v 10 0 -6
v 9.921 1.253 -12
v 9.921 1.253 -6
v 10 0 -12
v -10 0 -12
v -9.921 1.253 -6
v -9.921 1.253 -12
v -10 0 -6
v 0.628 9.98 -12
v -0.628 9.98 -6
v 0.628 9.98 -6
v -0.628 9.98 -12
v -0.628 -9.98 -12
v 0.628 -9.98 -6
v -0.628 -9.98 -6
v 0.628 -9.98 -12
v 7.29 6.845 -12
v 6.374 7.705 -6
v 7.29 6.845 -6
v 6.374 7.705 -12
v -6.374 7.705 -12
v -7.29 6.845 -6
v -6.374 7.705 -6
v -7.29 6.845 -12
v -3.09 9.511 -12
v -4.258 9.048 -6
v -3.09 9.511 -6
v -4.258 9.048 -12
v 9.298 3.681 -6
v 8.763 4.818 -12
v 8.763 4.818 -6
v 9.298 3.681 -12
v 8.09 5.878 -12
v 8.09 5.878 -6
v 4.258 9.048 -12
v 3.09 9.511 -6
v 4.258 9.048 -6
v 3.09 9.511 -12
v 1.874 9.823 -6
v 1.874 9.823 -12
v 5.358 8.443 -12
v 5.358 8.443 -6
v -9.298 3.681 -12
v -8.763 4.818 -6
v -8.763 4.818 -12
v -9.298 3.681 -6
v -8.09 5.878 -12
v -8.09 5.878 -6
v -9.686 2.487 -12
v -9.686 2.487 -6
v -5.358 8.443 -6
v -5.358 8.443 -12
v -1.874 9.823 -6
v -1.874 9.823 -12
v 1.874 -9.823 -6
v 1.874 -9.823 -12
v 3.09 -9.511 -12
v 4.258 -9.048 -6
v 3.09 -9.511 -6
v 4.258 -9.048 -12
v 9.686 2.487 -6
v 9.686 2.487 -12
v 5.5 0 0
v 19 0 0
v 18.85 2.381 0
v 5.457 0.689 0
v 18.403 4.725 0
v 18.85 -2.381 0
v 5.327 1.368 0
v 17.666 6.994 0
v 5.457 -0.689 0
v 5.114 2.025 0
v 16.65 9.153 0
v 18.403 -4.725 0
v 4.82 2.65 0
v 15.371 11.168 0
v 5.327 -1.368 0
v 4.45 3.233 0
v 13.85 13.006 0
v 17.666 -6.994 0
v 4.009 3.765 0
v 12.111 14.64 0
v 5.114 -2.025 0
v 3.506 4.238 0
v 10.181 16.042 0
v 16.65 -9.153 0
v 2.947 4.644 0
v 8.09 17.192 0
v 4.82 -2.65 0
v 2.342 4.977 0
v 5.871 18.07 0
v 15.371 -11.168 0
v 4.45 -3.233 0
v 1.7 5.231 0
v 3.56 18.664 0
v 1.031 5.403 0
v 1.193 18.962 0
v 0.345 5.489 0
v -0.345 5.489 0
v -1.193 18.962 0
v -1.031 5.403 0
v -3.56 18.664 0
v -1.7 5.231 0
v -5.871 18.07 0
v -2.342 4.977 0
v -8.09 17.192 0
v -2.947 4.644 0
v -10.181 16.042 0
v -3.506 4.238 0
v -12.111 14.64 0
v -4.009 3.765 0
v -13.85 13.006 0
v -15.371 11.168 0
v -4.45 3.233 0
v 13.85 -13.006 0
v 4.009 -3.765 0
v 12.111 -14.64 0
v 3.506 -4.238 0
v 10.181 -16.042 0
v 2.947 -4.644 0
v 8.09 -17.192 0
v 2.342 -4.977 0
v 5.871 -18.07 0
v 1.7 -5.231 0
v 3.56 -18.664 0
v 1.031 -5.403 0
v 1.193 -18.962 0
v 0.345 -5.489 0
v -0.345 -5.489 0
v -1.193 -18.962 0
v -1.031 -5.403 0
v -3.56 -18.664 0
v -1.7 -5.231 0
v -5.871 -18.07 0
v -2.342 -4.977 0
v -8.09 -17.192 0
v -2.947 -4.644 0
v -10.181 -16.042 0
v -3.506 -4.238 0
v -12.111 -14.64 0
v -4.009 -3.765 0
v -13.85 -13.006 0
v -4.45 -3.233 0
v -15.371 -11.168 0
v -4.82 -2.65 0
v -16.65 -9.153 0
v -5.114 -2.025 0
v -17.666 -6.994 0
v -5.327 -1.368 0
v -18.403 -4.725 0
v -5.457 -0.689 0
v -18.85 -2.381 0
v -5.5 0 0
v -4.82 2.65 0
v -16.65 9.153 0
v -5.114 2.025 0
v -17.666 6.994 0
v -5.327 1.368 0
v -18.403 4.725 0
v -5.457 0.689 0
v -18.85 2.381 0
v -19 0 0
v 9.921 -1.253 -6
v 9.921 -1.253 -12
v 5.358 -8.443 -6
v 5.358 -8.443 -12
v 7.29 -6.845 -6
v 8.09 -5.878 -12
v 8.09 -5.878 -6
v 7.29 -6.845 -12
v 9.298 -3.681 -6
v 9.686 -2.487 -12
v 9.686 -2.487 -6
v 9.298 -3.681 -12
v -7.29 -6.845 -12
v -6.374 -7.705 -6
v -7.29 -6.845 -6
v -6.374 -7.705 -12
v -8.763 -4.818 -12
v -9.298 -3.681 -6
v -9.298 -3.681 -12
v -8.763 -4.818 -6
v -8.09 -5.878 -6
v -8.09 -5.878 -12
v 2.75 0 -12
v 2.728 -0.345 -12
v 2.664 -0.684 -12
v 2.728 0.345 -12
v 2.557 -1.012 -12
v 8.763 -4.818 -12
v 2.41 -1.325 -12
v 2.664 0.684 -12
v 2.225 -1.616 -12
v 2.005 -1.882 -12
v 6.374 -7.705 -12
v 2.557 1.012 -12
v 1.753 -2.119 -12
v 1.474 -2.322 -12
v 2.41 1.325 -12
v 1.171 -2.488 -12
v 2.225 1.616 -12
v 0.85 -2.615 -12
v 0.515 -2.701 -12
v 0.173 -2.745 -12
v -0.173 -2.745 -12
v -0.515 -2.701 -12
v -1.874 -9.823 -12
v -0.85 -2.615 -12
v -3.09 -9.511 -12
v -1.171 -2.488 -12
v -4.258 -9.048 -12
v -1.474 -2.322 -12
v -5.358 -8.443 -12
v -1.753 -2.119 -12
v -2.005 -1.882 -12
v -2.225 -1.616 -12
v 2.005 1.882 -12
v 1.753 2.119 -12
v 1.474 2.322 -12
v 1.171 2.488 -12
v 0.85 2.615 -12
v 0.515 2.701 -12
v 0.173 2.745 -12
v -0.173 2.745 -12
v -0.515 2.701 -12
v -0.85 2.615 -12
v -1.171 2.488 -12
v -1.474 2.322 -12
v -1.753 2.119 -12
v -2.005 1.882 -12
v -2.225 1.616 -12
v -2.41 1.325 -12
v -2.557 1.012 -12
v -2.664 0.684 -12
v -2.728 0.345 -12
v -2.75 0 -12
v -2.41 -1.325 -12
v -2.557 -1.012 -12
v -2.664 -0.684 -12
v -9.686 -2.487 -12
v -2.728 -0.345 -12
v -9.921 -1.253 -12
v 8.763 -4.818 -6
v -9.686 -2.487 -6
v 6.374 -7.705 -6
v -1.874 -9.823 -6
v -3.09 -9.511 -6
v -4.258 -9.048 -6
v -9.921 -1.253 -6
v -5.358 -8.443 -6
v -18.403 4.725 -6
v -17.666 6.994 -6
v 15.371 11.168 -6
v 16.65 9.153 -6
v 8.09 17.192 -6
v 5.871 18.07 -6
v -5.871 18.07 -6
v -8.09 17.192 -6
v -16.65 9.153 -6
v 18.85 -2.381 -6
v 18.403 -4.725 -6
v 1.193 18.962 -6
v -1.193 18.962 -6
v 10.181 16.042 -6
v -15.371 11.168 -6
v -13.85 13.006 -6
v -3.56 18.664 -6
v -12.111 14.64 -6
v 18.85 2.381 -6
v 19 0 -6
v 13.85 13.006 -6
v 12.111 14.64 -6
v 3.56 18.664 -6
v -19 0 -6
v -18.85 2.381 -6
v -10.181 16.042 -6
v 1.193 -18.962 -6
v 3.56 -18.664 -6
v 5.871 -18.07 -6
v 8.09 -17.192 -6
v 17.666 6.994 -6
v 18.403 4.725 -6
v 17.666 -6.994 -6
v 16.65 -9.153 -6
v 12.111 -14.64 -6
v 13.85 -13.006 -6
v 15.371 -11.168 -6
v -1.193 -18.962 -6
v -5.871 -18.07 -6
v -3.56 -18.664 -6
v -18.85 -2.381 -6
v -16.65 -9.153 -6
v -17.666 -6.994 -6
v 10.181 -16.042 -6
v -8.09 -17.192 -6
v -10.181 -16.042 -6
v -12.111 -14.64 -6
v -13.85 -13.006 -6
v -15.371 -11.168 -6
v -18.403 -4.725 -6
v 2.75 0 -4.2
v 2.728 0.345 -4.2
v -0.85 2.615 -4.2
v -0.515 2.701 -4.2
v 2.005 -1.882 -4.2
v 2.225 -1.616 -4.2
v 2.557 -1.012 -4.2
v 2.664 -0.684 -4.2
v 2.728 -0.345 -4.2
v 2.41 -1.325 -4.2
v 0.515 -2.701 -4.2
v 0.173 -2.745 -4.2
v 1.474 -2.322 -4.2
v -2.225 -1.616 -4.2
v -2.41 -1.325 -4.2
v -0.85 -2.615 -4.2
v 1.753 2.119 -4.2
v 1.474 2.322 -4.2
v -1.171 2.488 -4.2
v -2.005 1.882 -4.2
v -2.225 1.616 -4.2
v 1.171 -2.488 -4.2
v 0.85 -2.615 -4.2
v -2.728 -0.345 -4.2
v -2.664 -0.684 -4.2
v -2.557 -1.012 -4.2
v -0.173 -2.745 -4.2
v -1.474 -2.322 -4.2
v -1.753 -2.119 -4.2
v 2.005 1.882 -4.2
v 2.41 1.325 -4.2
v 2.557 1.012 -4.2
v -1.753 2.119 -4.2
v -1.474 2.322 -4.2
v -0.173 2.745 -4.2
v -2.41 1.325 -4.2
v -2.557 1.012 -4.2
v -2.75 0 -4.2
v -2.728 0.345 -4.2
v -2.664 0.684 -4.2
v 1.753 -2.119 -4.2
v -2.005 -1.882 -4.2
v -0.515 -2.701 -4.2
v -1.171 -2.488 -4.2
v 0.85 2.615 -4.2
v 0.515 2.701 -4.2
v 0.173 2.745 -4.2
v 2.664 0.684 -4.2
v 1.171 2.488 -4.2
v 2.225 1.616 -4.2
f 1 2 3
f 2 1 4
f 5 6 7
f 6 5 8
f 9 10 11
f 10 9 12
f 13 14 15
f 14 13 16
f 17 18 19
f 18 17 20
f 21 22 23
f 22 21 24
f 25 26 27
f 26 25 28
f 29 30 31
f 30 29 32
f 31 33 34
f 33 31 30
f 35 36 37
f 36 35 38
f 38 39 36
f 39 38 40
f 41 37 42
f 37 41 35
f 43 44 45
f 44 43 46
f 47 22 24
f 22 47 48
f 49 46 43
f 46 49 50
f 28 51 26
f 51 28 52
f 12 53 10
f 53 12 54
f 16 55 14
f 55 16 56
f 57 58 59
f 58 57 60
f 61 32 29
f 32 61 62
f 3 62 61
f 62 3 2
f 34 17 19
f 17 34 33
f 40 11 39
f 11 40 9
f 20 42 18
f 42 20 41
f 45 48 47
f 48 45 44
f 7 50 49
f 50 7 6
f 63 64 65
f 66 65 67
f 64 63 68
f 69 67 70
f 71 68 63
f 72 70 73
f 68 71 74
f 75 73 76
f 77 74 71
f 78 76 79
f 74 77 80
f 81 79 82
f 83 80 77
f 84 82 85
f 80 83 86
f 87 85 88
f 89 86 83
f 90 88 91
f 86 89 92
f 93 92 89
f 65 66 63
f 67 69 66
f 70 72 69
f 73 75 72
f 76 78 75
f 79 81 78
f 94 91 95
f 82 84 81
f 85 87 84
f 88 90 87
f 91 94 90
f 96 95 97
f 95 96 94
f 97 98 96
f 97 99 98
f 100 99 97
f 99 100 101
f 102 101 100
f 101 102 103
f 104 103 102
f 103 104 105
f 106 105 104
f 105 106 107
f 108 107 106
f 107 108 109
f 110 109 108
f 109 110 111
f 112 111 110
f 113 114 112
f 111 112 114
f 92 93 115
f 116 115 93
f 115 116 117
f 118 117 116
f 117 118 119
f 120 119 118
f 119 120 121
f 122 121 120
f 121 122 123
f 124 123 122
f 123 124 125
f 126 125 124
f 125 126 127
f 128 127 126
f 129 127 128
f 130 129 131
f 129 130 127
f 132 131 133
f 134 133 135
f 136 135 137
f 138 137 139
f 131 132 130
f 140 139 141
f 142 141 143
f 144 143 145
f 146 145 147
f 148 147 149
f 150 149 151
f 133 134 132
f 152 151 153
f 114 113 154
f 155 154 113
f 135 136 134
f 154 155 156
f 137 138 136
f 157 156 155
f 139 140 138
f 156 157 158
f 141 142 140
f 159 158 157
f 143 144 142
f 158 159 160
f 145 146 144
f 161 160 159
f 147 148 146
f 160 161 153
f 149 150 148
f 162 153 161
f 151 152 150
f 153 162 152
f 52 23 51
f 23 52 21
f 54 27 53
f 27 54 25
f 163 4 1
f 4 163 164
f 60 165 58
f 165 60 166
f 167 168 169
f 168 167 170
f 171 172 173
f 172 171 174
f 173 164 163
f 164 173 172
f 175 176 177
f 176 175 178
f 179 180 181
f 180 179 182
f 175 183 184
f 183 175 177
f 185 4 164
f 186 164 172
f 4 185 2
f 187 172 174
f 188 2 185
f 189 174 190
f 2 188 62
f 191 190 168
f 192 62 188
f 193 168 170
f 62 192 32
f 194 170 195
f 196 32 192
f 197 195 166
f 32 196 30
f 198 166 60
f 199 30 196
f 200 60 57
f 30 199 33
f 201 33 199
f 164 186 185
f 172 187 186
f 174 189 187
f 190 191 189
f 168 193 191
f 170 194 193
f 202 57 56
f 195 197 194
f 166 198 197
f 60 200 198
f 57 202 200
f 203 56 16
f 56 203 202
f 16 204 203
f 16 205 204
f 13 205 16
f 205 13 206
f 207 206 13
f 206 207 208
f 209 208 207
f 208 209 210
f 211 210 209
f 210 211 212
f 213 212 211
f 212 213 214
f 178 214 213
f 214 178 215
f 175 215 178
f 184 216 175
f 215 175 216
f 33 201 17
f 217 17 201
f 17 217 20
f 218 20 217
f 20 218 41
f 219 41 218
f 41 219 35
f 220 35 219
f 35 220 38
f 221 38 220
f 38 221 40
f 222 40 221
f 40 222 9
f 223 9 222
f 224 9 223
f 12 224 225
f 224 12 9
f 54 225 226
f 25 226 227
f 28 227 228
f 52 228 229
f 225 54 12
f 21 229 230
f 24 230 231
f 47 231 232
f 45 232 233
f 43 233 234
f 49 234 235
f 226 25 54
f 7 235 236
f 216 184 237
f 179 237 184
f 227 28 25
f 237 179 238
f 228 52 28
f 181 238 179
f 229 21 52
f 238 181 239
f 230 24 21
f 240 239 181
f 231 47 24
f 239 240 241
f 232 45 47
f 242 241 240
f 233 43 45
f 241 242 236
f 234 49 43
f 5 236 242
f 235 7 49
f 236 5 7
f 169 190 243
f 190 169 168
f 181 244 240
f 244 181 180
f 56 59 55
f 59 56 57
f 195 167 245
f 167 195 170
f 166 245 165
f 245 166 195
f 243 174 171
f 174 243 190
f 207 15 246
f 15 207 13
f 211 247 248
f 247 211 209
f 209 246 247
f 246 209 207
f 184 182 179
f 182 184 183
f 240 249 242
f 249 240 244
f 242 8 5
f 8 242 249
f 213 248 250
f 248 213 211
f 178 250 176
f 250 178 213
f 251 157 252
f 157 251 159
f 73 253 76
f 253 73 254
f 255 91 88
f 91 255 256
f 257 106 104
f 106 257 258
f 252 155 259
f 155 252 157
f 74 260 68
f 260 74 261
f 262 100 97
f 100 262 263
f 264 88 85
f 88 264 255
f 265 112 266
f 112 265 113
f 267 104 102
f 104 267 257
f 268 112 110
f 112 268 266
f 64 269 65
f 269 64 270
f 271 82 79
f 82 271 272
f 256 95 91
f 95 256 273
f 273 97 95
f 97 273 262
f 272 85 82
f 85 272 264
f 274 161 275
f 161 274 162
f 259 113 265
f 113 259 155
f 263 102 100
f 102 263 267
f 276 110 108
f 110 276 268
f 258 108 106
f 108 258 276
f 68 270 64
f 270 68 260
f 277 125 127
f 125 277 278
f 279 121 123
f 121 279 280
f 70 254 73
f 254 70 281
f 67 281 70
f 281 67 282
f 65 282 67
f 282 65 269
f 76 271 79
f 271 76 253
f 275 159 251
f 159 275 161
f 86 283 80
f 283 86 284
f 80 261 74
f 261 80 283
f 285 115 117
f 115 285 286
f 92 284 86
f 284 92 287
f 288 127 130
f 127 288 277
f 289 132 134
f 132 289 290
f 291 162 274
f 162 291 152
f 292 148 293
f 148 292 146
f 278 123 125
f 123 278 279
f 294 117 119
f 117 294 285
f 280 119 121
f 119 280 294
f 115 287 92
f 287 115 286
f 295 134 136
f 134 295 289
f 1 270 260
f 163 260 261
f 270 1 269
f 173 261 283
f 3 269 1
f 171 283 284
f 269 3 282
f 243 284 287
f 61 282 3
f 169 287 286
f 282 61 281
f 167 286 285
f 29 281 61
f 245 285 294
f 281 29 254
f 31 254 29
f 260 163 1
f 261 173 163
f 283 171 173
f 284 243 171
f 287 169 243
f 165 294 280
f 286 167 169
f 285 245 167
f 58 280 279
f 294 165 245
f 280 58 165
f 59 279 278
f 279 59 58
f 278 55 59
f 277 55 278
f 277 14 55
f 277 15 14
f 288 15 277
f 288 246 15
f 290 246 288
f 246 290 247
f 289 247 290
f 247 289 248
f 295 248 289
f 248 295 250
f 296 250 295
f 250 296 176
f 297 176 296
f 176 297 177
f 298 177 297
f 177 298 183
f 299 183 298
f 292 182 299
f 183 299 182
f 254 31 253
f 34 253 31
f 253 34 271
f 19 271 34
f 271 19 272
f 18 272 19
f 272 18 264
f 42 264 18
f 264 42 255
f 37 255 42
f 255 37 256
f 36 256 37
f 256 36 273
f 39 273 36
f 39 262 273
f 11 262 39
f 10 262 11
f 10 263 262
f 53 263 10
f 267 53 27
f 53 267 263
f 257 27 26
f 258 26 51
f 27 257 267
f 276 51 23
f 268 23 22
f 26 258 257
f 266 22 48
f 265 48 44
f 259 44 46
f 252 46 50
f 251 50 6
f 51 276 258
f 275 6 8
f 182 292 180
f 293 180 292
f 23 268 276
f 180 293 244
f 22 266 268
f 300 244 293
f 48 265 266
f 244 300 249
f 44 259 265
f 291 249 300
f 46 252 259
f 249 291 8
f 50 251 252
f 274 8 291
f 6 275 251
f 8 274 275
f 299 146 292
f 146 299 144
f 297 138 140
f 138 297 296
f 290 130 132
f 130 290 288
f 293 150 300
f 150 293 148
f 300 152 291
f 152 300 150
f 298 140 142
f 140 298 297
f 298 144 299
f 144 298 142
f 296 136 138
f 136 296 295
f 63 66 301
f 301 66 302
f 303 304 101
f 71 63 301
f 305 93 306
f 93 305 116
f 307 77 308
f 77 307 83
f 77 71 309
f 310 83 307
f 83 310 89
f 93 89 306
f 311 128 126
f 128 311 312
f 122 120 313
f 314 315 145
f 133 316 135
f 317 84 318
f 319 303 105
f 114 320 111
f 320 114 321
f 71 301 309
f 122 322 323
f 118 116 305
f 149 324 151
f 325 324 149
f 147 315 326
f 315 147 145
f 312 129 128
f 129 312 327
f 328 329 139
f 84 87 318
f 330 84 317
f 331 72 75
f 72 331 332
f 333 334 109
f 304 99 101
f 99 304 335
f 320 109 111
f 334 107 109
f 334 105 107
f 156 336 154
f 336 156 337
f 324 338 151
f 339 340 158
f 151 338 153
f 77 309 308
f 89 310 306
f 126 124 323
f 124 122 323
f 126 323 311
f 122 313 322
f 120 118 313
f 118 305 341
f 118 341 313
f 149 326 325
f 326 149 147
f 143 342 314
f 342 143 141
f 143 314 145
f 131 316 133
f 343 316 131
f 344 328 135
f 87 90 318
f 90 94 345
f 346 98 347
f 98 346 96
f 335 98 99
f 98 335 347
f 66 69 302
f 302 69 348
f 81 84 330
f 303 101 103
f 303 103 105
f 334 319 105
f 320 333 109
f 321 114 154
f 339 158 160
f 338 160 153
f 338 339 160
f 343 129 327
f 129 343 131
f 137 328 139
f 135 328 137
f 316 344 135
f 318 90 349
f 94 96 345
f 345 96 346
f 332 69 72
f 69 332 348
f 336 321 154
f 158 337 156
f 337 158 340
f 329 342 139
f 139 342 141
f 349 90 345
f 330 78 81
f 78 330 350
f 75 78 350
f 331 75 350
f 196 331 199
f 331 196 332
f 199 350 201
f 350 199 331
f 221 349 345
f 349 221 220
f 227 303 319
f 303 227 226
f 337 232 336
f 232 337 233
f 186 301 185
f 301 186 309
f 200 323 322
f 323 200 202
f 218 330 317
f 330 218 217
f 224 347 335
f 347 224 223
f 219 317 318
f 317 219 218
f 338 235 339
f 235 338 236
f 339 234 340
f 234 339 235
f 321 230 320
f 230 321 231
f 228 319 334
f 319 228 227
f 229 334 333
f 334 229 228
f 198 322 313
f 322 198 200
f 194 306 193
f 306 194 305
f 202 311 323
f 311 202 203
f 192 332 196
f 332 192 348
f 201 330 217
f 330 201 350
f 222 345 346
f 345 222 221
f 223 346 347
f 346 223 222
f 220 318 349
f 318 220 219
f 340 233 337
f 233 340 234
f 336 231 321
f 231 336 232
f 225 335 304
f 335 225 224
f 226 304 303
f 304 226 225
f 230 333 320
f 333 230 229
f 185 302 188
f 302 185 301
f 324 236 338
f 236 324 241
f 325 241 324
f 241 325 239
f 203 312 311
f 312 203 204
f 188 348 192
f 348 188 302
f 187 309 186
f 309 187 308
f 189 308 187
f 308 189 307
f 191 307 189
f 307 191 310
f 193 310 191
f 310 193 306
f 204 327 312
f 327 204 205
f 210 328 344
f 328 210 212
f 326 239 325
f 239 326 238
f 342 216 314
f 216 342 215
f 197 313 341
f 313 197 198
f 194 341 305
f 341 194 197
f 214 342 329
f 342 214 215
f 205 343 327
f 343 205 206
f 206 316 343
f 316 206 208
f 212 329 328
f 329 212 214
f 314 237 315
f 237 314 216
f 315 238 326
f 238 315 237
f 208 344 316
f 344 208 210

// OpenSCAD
$fn = 50;


difference() {
	union() {
		translate(v = [0, 0, -12.0000000000]) {
			cylinder(h = 12, r = 10.0000000000);
		}
		translate(v = [0, 0, -6.0000000000]) {
			cylinder(h = 6, r = 19.0000000000);
		}
	}
	union() {
		translate(v = [0, 0, 0]) {
			rotate(a = [0, 0, 0]) {
				difference() {
					union() {
						#translate(v = [0, 0, -12.0000000000]) {
							cylinder(h = 12, r = 2.2500000000);
						}
						#translate(v = [0, 0, -4.2000000000]) {
							cylinder(h = 4.2000000000, r1 = 2.7500000000, r2 = 5.5000000000);
						}
						#translate(v = [0, 0, -12.0000000000]) {
							cylinder(h = 12, r = 2.7500000000);
						}
						#translate(v = [0, 0, -12.0000000000]) {
							cylinder(h = 12, r = 2.2500000000);
						}
					}
					union();
				}
			}
		}
	}
}
